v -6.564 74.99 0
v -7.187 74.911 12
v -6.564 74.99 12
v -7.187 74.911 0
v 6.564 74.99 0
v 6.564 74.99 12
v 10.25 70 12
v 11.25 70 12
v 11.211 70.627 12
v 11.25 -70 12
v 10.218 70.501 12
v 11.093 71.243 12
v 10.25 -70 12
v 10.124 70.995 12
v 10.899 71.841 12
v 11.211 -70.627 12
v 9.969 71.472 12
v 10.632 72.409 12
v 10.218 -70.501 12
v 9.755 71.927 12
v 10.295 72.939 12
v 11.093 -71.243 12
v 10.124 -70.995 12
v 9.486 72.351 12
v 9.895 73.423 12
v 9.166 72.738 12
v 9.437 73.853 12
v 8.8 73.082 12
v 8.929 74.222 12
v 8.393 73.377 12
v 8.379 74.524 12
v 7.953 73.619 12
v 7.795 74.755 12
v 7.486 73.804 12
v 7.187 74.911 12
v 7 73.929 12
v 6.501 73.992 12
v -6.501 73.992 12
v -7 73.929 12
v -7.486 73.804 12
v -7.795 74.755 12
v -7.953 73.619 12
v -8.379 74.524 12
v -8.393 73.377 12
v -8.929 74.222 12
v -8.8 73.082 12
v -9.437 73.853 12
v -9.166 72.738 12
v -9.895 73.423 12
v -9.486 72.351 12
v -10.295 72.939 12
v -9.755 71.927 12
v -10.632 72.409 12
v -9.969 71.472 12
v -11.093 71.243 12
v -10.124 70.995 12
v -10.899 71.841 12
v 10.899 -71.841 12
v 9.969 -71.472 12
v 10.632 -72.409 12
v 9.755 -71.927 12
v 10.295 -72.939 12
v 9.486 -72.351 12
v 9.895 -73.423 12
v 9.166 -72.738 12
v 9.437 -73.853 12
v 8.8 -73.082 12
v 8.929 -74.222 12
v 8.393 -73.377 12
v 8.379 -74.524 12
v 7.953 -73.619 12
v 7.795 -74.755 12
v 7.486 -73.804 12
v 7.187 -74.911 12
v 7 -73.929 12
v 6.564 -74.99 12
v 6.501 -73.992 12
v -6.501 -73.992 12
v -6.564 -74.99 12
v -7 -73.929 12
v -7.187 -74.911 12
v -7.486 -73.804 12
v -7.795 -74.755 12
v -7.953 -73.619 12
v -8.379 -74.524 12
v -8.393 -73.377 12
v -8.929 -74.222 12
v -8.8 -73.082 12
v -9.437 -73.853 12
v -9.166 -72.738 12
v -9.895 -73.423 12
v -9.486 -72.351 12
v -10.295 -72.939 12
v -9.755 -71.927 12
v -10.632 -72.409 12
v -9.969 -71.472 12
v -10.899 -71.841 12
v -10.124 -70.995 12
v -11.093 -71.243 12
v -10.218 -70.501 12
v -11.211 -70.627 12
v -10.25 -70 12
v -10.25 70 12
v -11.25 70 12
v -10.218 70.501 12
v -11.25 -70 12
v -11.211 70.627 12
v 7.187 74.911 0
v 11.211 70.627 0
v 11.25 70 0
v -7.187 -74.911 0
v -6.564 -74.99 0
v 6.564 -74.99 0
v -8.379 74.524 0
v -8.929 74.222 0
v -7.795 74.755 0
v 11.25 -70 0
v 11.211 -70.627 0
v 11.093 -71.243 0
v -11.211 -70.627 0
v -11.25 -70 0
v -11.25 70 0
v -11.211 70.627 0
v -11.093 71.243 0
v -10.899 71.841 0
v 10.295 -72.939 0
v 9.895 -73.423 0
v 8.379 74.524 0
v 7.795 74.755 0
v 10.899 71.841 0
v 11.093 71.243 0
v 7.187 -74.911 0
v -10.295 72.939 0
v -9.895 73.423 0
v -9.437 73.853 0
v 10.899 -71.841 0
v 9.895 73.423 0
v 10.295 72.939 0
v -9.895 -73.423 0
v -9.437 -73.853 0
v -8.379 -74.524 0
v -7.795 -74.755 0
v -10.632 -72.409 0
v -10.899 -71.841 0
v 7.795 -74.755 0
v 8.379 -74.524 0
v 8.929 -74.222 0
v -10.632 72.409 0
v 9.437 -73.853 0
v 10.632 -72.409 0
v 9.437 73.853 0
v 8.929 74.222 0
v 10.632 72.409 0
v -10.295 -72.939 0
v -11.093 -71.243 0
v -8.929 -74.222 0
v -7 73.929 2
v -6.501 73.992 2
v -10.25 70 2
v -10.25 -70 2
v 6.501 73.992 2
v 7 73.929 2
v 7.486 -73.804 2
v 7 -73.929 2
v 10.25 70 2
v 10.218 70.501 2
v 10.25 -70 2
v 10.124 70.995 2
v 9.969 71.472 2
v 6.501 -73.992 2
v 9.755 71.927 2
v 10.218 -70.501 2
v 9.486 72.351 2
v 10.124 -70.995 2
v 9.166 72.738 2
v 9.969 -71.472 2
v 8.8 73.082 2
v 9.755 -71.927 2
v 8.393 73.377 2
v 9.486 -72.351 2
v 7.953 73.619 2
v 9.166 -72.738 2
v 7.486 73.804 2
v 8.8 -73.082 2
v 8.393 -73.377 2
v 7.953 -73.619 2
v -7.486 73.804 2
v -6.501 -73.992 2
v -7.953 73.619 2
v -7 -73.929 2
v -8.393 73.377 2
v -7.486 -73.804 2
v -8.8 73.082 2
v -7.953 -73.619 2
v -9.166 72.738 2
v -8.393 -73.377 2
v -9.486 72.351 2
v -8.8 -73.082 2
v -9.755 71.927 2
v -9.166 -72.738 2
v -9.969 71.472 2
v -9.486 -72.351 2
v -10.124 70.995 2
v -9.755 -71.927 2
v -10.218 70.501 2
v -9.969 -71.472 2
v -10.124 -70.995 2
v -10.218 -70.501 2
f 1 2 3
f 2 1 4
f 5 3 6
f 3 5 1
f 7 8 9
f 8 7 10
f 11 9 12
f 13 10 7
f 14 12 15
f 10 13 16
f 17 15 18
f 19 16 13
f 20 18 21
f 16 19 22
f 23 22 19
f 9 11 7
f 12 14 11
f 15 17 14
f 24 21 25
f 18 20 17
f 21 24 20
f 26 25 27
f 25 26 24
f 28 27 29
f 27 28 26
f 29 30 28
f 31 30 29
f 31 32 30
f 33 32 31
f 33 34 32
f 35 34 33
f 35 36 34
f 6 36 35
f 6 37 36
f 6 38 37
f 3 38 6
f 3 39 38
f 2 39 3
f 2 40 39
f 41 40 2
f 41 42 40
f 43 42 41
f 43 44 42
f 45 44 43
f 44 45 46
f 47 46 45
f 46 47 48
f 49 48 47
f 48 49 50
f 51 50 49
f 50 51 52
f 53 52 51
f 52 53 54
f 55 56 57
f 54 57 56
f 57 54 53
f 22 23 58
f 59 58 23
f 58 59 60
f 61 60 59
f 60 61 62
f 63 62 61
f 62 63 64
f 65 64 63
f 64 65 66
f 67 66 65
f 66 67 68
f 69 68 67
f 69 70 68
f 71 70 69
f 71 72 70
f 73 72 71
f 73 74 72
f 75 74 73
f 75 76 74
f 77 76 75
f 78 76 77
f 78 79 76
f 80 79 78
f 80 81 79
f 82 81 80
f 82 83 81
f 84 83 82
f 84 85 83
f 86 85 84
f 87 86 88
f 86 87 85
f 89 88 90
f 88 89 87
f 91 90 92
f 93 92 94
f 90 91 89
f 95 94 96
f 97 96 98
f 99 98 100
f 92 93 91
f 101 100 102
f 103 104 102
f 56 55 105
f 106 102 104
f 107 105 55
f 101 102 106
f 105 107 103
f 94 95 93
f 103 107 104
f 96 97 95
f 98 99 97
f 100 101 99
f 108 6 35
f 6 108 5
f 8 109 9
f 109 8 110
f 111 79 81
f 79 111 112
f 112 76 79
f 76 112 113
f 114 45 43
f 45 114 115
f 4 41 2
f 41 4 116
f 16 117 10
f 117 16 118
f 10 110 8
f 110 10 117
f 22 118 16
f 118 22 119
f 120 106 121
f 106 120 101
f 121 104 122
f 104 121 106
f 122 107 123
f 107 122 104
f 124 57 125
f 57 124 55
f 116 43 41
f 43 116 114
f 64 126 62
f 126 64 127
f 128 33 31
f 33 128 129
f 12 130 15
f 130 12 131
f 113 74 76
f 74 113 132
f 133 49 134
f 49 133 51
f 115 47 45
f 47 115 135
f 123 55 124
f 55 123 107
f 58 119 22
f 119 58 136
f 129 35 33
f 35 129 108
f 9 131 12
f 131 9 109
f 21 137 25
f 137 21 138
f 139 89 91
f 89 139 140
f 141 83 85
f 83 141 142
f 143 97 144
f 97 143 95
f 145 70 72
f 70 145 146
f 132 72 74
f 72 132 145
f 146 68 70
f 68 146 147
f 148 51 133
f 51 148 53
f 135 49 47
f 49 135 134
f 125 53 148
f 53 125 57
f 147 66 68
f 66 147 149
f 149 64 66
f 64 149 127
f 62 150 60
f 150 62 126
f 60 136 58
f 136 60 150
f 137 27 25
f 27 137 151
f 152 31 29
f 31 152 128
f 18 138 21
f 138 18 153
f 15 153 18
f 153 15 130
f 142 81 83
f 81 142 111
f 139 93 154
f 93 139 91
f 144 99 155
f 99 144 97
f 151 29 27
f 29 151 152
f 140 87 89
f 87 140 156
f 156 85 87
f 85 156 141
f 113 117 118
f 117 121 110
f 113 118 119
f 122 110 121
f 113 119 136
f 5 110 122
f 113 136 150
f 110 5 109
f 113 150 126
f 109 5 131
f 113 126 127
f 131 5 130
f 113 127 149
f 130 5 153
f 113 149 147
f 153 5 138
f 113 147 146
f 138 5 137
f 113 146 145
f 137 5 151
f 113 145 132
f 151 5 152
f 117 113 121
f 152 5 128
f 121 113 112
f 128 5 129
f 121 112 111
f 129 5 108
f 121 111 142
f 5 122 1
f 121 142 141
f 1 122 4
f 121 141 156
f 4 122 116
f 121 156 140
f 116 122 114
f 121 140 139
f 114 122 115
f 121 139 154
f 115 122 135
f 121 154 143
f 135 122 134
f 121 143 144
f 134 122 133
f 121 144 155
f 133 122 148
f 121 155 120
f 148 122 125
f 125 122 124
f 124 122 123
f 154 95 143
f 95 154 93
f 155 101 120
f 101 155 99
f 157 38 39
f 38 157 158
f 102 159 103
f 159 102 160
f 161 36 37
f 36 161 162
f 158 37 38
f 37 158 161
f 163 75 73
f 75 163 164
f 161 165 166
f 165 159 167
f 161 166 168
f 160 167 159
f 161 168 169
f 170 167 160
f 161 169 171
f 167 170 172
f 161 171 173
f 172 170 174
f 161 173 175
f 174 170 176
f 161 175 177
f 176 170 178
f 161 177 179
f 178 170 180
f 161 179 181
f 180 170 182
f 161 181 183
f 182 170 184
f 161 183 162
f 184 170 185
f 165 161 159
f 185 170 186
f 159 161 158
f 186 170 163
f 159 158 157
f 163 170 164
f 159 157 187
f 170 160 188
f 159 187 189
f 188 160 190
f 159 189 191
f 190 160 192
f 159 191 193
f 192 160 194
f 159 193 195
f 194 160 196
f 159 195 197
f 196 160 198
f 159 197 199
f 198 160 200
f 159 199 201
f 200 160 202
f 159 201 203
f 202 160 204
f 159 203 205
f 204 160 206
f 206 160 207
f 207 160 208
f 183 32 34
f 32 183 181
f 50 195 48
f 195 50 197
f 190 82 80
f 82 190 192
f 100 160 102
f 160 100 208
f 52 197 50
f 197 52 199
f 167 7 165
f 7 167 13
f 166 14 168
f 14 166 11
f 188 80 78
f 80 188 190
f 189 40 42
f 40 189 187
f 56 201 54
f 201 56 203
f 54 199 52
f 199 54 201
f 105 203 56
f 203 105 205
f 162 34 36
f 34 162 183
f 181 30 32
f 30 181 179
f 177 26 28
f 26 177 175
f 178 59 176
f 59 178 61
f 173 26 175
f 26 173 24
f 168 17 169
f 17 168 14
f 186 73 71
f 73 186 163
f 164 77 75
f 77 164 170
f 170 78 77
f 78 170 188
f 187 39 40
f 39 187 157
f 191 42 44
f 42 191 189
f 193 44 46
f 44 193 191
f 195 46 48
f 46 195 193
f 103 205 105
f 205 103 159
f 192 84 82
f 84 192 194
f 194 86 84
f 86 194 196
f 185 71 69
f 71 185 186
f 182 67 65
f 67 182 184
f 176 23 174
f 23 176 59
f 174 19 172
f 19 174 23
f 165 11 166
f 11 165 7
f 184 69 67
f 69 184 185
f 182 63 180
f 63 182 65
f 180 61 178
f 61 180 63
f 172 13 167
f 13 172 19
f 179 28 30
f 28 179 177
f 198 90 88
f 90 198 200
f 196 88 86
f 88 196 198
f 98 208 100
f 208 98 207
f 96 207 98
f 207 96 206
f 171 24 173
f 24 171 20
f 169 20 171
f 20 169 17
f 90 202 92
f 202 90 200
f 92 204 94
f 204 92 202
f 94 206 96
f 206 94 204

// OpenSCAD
$fn = 50;


difference() {
	union() {
		hull() {
			translate(v = [-6.2500000000, 70.0000000000, 0]) {
				cylinder(h = 12, r = 5);
			}
			translate(v = [6.2500000000, 70.0000000000, 0]) {
				cylinder(h = 12, r = 5);
			}
			translate(v = [-6.2500000000, -70.0000000000, 0]) {
				cylinder(h = 12, r = 5);
			}
			translate(v = [6.2500000000, -70.0000000000, 0]) {
				cylinder(h = 12, r = 5);
			}
		}
	}
	union() {
		translate(v = [0, 0, 2]) {
			hull() {
				translate(v = [-6.2500000000, 70.0000000000, 0]) {
					cylinder(h = 10, r = 4);
				}
				translate(v = [6.2500000000, 70.0000000000, 0]) {
					cylinder(h = 10, r = 4);
				}
				translate(v = [-6.2500000000, -70.0000000000, 0]) {
					cylinder(h = 10, r = 4);
				}
				translate(v = [6.2500000000, -70.0000000000, 0]) {
					cylinder(h = 10, r = 4);
				}
			}
		}
	}
}
